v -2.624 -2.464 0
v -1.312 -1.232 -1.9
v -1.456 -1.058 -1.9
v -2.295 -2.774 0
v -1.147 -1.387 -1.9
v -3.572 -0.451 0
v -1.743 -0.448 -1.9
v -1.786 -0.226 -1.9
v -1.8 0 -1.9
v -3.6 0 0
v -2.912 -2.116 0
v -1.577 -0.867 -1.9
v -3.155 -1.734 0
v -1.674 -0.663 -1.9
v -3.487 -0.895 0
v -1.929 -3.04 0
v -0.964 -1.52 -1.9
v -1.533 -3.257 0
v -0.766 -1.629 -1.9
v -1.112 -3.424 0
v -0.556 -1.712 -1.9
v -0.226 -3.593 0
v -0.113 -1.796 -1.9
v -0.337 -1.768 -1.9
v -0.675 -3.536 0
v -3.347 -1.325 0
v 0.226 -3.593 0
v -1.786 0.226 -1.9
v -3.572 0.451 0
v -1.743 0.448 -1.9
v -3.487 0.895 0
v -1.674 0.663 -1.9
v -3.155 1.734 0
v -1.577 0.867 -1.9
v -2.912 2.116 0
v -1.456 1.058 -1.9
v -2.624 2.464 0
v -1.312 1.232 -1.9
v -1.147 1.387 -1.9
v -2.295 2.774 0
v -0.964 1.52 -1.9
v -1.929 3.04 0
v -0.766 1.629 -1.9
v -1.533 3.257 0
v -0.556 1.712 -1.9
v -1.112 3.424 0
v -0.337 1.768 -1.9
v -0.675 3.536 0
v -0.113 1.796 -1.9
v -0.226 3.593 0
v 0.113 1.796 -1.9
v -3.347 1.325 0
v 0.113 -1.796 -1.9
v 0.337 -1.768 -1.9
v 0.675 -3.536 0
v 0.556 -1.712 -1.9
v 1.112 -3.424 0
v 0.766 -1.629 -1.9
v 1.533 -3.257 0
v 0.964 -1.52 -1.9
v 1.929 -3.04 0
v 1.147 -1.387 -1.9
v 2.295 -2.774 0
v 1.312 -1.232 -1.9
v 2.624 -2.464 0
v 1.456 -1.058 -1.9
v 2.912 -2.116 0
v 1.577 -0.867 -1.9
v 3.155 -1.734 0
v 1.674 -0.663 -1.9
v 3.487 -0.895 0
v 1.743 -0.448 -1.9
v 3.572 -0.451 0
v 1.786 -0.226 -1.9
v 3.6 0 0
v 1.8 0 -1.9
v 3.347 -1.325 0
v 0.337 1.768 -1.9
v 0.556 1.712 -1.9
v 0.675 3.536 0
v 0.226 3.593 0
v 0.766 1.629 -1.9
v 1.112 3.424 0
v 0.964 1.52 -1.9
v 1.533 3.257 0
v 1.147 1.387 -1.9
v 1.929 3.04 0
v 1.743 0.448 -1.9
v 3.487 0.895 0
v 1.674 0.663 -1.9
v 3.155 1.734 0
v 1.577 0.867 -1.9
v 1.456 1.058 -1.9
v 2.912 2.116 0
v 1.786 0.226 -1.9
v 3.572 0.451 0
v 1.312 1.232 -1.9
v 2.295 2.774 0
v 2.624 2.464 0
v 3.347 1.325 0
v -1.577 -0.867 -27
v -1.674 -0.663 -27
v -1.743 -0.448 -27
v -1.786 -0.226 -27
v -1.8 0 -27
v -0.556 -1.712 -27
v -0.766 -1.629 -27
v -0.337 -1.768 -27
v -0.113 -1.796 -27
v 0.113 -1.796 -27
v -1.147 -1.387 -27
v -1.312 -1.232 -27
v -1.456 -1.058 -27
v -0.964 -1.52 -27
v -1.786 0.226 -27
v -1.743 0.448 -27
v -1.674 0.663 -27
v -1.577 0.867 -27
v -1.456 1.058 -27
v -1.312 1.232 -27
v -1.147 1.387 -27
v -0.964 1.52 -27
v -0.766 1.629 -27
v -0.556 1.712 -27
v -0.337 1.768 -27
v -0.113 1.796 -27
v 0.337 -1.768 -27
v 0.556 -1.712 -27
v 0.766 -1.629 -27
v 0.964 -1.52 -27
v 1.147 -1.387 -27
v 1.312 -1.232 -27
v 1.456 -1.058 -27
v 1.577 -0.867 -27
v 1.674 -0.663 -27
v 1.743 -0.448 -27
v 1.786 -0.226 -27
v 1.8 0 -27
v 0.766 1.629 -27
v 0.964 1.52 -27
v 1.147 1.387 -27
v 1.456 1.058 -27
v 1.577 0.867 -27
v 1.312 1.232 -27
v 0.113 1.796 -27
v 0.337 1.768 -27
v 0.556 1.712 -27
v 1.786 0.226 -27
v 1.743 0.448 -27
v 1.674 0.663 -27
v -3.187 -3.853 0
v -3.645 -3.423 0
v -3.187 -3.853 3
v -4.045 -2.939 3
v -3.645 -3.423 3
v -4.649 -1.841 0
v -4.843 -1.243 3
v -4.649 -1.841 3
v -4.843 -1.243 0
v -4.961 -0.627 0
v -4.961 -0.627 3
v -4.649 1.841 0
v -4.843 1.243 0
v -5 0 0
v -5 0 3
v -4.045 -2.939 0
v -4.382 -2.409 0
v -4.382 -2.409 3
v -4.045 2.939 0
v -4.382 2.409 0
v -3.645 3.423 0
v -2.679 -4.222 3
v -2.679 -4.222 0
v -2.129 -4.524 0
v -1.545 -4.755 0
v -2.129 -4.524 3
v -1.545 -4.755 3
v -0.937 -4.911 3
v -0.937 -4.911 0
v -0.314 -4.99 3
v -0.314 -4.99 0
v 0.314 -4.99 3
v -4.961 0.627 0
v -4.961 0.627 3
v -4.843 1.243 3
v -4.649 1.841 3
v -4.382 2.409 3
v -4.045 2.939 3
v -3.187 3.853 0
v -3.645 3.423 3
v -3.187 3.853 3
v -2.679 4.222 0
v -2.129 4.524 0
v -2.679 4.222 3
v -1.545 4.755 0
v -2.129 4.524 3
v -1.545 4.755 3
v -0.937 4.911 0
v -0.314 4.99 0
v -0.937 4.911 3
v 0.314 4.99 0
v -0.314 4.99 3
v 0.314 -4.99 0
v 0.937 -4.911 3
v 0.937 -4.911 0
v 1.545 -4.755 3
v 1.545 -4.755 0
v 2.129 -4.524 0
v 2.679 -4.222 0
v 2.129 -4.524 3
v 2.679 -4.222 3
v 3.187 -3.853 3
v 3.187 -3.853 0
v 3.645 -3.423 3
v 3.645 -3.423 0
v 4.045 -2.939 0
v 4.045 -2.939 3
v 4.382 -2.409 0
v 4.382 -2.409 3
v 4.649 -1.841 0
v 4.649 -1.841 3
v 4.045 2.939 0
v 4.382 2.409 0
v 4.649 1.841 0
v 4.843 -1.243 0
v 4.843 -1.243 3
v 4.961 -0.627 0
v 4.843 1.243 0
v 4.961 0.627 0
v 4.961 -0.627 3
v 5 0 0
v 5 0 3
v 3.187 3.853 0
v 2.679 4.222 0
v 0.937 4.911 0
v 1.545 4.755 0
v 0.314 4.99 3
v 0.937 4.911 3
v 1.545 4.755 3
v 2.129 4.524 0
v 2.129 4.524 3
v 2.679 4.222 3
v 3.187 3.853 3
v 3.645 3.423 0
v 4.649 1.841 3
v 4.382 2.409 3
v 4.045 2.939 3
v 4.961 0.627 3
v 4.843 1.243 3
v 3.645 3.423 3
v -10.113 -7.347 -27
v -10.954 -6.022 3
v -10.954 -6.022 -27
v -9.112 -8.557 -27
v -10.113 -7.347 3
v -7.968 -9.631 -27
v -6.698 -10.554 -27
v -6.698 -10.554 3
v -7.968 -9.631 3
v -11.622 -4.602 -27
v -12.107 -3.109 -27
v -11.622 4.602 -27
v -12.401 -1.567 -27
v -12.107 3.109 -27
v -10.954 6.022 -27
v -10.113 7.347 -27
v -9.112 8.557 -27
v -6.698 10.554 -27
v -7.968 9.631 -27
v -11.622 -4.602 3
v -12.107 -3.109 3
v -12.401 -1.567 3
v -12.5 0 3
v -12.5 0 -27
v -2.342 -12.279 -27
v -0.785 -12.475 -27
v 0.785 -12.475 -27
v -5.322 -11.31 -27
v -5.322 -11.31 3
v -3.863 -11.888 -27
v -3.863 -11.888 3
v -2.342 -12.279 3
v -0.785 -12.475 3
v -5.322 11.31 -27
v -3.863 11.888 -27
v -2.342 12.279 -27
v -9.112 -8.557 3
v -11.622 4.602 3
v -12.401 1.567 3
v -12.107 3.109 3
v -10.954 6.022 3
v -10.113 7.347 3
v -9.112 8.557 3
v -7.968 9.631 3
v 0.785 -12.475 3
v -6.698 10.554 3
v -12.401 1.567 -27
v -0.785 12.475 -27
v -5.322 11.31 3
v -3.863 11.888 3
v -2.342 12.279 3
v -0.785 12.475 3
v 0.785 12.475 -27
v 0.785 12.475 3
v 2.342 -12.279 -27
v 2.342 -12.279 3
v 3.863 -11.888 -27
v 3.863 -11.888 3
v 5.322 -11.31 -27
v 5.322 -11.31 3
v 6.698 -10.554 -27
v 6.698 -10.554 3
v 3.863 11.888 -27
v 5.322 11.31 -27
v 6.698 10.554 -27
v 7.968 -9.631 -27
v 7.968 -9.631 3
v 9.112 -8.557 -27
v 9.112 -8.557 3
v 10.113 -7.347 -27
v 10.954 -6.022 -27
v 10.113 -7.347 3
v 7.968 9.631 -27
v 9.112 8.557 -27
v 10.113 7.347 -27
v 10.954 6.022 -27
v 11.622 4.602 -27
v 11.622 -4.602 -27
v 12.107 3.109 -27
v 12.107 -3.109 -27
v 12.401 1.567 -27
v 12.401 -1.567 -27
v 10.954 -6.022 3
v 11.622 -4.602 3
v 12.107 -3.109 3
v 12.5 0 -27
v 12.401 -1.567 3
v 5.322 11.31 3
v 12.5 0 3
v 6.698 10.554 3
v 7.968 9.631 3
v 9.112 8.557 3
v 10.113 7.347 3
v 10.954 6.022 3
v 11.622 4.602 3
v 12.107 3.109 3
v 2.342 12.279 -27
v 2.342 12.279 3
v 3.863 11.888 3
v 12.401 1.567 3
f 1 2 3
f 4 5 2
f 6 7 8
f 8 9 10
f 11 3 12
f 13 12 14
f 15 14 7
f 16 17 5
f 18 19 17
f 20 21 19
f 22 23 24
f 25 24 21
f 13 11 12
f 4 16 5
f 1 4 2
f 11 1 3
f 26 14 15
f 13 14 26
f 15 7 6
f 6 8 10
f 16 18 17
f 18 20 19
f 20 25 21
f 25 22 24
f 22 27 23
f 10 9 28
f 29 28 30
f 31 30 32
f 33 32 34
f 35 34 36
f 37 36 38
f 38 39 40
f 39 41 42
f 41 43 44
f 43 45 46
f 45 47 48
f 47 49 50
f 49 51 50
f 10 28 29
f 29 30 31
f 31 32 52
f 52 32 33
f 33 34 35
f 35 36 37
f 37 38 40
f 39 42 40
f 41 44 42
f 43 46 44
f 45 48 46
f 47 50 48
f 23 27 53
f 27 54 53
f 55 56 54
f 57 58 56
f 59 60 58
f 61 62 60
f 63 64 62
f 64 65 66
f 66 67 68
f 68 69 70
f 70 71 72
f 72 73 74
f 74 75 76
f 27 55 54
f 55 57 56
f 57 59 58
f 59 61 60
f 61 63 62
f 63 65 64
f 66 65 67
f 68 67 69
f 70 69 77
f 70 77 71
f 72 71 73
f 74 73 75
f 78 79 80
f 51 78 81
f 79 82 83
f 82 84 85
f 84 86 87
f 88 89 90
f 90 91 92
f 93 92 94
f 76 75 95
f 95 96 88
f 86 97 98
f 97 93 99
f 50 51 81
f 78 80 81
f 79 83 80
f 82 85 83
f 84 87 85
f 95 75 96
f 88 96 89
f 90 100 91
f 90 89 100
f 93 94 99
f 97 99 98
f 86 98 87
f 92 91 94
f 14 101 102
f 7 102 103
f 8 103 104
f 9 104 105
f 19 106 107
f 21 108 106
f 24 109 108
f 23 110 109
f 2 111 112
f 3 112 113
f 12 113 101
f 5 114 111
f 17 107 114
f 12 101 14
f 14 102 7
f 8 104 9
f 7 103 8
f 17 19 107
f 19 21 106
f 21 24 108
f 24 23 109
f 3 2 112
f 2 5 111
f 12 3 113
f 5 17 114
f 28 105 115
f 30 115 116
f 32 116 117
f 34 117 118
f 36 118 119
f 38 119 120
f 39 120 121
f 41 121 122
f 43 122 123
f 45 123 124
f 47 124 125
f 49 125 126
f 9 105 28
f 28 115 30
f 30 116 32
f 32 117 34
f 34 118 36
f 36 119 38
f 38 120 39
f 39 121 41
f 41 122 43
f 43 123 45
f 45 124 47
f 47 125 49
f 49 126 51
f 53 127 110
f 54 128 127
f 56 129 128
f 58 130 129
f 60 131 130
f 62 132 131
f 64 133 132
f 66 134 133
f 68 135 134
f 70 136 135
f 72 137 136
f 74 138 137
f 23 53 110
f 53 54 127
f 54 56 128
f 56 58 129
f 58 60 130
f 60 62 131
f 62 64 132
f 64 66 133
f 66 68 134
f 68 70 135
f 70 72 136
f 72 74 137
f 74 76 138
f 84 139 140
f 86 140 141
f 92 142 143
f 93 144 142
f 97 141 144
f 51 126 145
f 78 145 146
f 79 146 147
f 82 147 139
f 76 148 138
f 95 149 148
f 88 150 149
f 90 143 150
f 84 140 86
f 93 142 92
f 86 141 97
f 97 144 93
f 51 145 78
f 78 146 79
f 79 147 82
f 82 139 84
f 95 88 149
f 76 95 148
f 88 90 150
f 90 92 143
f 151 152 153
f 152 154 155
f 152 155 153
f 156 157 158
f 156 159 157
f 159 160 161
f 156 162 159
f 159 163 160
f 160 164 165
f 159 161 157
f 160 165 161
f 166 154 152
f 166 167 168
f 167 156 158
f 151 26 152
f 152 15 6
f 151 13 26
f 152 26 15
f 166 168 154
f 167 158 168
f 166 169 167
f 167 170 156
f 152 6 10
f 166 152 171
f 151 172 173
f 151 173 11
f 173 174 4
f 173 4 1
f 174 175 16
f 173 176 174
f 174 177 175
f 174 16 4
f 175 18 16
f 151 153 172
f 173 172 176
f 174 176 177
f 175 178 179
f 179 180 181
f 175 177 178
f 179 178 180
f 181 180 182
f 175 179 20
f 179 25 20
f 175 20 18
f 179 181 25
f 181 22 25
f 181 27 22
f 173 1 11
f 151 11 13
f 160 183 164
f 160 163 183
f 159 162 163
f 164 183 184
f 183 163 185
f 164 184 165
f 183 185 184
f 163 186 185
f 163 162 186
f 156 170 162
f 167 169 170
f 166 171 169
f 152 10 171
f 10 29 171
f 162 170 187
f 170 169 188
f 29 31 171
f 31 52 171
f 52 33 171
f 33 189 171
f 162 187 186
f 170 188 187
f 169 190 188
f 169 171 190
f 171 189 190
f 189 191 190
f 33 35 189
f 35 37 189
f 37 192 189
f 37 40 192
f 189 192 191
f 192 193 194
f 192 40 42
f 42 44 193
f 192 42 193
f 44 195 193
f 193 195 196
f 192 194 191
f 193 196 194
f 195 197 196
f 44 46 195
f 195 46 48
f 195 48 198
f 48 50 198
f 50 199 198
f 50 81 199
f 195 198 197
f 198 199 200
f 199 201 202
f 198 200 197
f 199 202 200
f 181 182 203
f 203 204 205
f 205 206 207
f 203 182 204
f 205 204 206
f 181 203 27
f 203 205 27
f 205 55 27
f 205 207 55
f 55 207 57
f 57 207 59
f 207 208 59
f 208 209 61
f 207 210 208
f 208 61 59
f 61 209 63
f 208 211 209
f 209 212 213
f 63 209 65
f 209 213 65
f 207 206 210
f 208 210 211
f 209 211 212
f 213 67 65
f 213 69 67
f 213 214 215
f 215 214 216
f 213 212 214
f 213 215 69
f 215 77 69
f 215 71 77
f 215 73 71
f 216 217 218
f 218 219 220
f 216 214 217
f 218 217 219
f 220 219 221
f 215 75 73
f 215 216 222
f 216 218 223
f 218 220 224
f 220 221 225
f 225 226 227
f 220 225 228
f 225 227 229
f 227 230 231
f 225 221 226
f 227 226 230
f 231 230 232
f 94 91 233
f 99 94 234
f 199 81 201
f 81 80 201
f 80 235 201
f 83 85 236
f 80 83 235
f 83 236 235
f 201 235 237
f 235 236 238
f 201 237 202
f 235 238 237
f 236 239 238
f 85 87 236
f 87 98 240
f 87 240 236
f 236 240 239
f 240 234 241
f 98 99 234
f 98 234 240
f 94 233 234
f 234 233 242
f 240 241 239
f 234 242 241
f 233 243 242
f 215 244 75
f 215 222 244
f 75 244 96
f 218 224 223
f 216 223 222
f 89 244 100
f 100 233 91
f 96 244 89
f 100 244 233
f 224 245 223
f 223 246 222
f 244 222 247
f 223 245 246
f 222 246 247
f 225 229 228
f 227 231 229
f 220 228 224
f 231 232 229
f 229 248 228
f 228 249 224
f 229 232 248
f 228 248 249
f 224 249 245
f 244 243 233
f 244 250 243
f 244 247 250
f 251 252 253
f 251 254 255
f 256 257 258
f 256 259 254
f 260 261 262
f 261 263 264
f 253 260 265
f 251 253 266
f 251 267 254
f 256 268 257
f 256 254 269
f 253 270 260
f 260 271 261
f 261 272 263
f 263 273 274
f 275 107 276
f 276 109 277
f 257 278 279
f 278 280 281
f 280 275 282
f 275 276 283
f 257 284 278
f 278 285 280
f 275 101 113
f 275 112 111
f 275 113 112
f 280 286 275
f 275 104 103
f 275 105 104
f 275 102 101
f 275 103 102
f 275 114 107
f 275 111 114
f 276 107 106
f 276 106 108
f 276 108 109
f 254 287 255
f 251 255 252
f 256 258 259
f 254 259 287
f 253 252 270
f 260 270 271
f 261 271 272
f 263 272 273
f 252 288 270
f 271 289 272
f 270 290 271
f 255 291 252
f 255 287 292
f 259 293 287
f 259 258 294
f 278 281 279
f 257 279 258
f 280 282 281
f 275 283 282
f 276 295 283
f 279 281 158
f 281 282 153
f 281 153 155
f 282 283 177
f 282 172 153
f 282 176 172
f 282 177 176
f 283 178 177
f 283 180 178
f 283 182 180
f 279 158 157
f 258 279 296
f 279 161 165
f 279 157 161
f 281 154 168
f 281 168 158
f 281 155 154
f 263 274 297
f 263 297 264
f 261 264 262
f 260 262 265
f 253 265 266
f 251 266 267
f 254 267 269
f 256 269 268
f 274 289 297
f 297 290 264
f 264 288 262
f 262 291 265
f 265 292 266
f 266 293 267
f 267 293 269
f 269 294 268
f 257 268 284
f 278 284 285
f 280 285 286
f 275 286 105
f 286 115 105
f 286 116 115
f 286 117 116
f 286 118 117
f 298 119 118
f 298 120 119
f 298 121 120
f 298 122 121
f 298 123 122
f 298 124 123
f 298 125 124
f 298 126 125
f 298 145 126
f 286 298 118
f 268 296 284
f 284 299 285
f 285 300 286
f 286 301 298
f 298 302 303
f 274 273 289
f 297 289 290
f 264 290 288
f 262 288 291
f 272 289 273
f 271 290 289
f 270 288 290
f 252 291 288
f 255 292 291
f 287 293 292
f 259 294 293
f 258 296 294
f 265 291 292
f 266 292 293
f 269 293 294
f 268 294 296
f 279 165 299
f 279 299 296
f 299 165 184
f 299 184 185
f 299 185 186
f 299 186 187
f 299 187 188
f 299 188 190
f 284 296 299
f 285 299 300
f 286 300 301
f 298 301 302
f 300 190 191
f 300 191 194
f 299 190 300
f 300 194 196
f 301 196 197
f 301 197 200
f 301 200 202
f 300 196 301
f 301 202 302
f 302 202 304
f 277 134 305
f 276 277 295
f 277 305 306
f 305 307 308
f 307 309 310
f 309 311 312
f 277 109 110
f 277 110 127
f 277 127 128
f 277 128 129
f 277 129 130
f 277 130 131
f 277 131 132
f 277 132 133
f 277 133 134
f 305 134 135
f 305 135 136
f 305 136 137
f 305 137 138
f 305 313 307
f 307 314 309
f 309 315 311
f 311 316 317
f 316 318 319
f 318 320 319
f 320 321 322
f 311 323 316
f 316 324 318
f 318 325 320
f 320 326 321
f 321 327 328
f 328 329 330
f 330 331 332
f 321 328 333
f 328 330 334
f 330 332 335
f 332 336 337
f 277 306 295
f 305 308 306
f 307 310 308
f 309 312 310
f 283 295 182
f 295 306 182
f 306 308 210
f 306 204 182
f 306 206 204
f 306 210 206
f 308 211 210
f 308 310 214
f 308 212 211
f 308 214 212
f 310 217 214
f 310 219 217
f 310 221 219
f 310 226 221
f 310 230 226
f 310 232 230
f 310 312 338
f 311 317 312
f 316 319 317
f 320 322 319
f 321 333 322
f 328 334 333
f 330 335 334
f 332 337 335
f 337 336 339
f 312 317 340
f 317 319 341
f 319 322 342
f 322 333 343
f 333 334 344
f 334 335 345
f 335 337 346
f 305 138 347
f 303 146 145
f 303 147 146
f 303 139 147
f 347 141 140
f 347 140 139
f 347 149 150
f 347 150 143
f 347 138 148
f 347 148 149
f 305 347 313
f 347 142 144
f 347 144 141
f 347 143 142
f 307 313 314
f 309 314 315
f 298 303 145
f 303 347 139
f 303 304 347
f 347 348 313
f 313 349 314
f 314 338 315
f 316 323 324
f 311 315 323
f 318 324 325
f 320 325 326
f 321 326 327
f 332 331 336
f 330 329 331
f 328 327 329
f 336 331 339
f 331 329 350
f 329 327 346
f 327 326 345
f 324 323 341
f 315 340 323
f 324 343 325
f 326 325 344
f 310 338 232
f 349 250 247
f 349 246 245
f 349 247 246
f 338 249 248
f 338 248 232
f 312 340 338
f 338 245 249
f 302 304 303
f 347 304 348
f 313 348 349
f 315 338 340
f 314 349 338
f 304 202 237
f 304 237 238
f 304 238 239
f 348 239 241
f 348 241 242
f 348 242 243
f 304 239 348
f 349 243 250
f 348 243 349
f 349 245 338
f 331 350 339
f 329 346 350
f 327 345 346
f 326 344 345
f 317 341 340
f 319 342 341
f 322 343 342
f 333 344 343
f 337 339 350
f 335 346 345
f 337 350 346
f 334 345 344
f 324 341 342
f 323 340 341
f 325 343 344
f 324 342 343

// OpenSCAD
$fn = 50;

difference() {
	union() {
		translate(v = [0, 0, -27.0]) {
			cylinder(h = 30, r = 12.5);
		}
	}
	union() {
		translate(v = [0, 0, 0]) {
			rotate(a = [0, 0, 0]) {
				difference() {
					union() {
						translate(v = [0, 0, -30.0]) {
							cylinder(h = 30, r = 1.5);
						}
						translate(v = [0, 0, -1.9]) {
							cylinder(h = 1.9, r1 = 1.8, r2 = 3.6);
						}
						translate(v = [0, 0, -30.0]) {
							cylinder(h = 30, r = 1.8);
						}
						translate(v = [0, 0, -30.0]) {
							cylinder(h = 30, r = 1.5);
						}
					}
					union();
				}
			}
		}
		#cylinder(h = 3, r = 5.0);
	}
}
